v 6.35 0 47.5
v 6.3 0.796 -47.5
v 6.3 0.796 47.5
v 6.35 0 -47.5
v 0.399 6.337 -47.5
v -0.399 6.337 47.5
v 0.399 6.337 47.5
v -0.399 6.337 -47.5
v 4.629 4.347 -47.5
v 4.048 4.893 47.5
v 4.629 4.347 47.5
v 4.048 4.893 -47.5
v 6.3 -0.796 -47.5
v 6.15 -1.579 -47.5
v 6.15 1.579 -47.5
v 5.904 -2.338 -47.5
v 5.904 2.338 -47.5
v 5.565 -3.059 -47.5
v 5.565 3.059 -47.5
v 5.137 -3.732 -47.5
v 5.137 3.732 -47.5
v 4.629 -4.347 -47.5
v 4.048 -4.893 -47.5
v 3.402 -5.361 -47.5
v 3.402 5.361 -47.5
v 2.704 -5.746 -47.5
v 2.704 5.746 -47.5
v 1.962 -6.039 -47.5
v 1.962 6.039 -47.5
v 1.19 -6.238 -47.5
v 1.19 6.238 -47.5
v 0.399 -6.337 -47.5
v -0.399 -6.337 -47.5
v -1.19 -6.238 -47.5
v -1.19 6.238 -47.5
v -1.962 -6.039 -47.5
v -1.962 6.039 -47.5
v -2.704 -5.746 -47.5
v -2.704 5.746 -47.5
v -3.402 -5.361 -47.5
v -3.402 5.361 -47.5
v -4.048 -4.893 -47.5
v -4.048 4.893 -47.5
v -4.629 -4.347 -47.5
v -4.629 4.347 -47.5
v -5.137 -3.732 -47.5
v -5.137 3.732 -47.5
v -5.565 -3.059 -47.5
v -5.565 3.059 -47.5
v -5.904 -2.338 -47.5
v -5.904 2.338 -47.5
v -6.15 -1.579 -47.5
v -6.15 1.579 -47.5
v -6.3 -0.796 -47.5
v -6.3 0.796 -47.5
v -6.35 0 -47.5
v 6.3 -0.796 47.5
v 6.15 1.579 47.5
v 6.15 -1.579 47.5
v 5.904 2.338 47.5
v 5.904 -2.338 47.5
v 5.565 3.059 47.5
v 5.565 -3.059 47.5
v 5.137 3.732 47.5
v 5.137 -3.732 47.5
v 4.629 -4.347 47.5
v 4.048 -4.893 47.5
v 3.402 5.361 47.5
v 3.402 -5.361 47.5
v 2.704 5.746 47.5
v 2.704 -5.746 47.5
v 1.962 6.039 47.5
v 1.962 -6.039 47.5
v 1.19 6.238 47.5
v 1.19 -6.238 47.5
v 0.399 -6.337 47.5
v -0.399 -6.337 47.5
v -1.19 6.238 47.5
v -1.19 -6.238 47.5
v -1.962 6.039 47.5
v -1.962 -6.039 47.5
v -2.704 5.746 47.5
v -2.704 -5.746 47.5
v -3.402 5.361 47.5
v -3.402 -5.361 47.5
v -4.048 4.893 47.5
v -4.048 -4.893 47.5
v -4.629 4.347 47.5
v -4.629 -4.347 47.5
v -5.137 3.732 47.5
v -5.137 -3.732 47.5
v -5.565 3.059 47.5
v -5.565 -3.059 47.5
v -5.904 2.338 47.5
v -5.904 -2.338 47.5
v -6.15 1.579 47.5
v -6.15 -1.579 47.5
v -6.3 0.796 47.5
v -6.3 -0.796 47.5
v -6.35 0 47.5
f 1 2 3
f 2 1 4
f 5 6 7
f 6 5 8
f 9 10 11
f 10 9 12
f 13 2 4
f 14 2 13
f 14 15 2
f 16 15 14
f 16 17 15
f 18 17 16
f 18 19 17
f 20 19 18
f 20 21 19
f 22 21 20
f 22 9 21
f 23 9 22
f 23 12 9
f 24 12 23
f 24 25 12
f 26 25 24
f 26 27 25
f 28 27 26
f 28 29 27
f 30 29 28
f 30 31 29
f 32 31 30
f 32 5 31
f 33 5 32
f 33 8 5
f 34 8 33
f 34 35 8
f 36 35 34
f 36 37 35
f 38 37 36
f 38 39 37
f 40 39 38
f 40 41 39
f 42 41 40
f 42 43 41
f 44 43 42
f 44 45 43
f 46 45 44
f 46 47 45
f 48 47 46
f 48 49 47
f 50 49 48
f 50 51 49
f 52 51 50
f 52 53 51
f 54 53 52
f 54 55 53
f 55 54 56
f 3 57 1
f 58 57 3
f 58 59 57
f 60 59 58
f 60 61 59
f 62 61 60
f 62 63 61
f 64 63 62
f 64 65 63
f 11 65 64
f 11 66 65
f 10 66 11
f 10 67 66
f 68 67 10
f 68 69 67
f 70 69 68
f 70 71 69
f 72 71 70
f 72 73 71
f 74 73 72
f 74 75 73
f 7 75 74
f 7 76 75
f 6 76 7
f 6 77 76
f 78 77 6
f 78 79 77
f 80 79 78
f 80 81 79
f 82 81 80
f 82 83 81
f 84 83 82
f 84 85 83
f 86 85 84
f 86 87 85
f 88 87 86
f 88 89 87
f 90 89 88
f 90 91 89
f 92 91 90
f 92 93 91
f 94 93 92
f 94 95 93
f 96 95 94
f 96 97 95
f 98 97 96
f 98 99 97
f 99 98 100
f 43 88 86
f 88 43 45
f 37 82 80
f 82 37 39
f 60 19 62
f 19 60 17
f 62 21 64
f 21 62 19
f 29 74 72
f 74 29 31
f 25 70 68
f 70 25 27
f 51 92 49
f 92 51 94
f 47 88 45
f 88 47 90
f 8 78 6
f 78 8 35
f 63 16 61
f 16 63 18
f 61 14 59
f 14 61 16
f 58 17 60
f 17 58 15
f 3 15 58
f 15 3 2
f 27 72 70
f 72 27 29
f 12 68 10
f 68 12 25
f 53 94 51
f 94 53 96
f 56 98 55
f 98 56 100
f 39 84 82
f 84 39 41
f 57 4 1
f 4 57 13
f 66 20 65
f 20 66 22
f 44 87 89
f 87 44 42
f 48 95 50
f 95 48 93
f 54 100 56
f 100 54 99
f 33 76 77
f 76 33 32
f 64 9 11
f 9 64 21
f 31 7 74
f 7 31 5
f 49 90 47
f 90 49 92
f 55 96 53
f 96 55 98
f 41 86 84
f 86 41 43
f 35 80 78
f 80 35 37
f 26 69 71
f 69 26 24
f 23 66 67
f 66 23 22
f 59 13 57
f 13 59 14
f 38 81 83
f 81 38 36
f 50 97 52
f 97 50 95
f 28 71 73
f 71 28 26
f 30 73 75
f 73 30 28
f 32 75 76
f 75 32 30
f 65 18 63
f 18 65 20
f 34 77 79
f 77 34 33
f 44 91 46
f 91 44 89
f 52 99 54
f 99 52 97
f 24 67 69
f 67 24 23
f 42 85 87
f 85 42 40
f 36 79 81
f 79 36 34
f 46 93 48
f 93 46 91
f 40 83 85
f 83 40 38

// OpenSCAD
$fn = 50;


difference() {
	union() {
		translate(v = [0, 0, -47.5000000000]) {
			cylinder(h = 95, r = 6.3500000000);
		}
	}
	union() {
		translate(v = [0, 0, -100.0000000000]) {
			cylinder(h = 200, r = 0);
		}
	}
}
